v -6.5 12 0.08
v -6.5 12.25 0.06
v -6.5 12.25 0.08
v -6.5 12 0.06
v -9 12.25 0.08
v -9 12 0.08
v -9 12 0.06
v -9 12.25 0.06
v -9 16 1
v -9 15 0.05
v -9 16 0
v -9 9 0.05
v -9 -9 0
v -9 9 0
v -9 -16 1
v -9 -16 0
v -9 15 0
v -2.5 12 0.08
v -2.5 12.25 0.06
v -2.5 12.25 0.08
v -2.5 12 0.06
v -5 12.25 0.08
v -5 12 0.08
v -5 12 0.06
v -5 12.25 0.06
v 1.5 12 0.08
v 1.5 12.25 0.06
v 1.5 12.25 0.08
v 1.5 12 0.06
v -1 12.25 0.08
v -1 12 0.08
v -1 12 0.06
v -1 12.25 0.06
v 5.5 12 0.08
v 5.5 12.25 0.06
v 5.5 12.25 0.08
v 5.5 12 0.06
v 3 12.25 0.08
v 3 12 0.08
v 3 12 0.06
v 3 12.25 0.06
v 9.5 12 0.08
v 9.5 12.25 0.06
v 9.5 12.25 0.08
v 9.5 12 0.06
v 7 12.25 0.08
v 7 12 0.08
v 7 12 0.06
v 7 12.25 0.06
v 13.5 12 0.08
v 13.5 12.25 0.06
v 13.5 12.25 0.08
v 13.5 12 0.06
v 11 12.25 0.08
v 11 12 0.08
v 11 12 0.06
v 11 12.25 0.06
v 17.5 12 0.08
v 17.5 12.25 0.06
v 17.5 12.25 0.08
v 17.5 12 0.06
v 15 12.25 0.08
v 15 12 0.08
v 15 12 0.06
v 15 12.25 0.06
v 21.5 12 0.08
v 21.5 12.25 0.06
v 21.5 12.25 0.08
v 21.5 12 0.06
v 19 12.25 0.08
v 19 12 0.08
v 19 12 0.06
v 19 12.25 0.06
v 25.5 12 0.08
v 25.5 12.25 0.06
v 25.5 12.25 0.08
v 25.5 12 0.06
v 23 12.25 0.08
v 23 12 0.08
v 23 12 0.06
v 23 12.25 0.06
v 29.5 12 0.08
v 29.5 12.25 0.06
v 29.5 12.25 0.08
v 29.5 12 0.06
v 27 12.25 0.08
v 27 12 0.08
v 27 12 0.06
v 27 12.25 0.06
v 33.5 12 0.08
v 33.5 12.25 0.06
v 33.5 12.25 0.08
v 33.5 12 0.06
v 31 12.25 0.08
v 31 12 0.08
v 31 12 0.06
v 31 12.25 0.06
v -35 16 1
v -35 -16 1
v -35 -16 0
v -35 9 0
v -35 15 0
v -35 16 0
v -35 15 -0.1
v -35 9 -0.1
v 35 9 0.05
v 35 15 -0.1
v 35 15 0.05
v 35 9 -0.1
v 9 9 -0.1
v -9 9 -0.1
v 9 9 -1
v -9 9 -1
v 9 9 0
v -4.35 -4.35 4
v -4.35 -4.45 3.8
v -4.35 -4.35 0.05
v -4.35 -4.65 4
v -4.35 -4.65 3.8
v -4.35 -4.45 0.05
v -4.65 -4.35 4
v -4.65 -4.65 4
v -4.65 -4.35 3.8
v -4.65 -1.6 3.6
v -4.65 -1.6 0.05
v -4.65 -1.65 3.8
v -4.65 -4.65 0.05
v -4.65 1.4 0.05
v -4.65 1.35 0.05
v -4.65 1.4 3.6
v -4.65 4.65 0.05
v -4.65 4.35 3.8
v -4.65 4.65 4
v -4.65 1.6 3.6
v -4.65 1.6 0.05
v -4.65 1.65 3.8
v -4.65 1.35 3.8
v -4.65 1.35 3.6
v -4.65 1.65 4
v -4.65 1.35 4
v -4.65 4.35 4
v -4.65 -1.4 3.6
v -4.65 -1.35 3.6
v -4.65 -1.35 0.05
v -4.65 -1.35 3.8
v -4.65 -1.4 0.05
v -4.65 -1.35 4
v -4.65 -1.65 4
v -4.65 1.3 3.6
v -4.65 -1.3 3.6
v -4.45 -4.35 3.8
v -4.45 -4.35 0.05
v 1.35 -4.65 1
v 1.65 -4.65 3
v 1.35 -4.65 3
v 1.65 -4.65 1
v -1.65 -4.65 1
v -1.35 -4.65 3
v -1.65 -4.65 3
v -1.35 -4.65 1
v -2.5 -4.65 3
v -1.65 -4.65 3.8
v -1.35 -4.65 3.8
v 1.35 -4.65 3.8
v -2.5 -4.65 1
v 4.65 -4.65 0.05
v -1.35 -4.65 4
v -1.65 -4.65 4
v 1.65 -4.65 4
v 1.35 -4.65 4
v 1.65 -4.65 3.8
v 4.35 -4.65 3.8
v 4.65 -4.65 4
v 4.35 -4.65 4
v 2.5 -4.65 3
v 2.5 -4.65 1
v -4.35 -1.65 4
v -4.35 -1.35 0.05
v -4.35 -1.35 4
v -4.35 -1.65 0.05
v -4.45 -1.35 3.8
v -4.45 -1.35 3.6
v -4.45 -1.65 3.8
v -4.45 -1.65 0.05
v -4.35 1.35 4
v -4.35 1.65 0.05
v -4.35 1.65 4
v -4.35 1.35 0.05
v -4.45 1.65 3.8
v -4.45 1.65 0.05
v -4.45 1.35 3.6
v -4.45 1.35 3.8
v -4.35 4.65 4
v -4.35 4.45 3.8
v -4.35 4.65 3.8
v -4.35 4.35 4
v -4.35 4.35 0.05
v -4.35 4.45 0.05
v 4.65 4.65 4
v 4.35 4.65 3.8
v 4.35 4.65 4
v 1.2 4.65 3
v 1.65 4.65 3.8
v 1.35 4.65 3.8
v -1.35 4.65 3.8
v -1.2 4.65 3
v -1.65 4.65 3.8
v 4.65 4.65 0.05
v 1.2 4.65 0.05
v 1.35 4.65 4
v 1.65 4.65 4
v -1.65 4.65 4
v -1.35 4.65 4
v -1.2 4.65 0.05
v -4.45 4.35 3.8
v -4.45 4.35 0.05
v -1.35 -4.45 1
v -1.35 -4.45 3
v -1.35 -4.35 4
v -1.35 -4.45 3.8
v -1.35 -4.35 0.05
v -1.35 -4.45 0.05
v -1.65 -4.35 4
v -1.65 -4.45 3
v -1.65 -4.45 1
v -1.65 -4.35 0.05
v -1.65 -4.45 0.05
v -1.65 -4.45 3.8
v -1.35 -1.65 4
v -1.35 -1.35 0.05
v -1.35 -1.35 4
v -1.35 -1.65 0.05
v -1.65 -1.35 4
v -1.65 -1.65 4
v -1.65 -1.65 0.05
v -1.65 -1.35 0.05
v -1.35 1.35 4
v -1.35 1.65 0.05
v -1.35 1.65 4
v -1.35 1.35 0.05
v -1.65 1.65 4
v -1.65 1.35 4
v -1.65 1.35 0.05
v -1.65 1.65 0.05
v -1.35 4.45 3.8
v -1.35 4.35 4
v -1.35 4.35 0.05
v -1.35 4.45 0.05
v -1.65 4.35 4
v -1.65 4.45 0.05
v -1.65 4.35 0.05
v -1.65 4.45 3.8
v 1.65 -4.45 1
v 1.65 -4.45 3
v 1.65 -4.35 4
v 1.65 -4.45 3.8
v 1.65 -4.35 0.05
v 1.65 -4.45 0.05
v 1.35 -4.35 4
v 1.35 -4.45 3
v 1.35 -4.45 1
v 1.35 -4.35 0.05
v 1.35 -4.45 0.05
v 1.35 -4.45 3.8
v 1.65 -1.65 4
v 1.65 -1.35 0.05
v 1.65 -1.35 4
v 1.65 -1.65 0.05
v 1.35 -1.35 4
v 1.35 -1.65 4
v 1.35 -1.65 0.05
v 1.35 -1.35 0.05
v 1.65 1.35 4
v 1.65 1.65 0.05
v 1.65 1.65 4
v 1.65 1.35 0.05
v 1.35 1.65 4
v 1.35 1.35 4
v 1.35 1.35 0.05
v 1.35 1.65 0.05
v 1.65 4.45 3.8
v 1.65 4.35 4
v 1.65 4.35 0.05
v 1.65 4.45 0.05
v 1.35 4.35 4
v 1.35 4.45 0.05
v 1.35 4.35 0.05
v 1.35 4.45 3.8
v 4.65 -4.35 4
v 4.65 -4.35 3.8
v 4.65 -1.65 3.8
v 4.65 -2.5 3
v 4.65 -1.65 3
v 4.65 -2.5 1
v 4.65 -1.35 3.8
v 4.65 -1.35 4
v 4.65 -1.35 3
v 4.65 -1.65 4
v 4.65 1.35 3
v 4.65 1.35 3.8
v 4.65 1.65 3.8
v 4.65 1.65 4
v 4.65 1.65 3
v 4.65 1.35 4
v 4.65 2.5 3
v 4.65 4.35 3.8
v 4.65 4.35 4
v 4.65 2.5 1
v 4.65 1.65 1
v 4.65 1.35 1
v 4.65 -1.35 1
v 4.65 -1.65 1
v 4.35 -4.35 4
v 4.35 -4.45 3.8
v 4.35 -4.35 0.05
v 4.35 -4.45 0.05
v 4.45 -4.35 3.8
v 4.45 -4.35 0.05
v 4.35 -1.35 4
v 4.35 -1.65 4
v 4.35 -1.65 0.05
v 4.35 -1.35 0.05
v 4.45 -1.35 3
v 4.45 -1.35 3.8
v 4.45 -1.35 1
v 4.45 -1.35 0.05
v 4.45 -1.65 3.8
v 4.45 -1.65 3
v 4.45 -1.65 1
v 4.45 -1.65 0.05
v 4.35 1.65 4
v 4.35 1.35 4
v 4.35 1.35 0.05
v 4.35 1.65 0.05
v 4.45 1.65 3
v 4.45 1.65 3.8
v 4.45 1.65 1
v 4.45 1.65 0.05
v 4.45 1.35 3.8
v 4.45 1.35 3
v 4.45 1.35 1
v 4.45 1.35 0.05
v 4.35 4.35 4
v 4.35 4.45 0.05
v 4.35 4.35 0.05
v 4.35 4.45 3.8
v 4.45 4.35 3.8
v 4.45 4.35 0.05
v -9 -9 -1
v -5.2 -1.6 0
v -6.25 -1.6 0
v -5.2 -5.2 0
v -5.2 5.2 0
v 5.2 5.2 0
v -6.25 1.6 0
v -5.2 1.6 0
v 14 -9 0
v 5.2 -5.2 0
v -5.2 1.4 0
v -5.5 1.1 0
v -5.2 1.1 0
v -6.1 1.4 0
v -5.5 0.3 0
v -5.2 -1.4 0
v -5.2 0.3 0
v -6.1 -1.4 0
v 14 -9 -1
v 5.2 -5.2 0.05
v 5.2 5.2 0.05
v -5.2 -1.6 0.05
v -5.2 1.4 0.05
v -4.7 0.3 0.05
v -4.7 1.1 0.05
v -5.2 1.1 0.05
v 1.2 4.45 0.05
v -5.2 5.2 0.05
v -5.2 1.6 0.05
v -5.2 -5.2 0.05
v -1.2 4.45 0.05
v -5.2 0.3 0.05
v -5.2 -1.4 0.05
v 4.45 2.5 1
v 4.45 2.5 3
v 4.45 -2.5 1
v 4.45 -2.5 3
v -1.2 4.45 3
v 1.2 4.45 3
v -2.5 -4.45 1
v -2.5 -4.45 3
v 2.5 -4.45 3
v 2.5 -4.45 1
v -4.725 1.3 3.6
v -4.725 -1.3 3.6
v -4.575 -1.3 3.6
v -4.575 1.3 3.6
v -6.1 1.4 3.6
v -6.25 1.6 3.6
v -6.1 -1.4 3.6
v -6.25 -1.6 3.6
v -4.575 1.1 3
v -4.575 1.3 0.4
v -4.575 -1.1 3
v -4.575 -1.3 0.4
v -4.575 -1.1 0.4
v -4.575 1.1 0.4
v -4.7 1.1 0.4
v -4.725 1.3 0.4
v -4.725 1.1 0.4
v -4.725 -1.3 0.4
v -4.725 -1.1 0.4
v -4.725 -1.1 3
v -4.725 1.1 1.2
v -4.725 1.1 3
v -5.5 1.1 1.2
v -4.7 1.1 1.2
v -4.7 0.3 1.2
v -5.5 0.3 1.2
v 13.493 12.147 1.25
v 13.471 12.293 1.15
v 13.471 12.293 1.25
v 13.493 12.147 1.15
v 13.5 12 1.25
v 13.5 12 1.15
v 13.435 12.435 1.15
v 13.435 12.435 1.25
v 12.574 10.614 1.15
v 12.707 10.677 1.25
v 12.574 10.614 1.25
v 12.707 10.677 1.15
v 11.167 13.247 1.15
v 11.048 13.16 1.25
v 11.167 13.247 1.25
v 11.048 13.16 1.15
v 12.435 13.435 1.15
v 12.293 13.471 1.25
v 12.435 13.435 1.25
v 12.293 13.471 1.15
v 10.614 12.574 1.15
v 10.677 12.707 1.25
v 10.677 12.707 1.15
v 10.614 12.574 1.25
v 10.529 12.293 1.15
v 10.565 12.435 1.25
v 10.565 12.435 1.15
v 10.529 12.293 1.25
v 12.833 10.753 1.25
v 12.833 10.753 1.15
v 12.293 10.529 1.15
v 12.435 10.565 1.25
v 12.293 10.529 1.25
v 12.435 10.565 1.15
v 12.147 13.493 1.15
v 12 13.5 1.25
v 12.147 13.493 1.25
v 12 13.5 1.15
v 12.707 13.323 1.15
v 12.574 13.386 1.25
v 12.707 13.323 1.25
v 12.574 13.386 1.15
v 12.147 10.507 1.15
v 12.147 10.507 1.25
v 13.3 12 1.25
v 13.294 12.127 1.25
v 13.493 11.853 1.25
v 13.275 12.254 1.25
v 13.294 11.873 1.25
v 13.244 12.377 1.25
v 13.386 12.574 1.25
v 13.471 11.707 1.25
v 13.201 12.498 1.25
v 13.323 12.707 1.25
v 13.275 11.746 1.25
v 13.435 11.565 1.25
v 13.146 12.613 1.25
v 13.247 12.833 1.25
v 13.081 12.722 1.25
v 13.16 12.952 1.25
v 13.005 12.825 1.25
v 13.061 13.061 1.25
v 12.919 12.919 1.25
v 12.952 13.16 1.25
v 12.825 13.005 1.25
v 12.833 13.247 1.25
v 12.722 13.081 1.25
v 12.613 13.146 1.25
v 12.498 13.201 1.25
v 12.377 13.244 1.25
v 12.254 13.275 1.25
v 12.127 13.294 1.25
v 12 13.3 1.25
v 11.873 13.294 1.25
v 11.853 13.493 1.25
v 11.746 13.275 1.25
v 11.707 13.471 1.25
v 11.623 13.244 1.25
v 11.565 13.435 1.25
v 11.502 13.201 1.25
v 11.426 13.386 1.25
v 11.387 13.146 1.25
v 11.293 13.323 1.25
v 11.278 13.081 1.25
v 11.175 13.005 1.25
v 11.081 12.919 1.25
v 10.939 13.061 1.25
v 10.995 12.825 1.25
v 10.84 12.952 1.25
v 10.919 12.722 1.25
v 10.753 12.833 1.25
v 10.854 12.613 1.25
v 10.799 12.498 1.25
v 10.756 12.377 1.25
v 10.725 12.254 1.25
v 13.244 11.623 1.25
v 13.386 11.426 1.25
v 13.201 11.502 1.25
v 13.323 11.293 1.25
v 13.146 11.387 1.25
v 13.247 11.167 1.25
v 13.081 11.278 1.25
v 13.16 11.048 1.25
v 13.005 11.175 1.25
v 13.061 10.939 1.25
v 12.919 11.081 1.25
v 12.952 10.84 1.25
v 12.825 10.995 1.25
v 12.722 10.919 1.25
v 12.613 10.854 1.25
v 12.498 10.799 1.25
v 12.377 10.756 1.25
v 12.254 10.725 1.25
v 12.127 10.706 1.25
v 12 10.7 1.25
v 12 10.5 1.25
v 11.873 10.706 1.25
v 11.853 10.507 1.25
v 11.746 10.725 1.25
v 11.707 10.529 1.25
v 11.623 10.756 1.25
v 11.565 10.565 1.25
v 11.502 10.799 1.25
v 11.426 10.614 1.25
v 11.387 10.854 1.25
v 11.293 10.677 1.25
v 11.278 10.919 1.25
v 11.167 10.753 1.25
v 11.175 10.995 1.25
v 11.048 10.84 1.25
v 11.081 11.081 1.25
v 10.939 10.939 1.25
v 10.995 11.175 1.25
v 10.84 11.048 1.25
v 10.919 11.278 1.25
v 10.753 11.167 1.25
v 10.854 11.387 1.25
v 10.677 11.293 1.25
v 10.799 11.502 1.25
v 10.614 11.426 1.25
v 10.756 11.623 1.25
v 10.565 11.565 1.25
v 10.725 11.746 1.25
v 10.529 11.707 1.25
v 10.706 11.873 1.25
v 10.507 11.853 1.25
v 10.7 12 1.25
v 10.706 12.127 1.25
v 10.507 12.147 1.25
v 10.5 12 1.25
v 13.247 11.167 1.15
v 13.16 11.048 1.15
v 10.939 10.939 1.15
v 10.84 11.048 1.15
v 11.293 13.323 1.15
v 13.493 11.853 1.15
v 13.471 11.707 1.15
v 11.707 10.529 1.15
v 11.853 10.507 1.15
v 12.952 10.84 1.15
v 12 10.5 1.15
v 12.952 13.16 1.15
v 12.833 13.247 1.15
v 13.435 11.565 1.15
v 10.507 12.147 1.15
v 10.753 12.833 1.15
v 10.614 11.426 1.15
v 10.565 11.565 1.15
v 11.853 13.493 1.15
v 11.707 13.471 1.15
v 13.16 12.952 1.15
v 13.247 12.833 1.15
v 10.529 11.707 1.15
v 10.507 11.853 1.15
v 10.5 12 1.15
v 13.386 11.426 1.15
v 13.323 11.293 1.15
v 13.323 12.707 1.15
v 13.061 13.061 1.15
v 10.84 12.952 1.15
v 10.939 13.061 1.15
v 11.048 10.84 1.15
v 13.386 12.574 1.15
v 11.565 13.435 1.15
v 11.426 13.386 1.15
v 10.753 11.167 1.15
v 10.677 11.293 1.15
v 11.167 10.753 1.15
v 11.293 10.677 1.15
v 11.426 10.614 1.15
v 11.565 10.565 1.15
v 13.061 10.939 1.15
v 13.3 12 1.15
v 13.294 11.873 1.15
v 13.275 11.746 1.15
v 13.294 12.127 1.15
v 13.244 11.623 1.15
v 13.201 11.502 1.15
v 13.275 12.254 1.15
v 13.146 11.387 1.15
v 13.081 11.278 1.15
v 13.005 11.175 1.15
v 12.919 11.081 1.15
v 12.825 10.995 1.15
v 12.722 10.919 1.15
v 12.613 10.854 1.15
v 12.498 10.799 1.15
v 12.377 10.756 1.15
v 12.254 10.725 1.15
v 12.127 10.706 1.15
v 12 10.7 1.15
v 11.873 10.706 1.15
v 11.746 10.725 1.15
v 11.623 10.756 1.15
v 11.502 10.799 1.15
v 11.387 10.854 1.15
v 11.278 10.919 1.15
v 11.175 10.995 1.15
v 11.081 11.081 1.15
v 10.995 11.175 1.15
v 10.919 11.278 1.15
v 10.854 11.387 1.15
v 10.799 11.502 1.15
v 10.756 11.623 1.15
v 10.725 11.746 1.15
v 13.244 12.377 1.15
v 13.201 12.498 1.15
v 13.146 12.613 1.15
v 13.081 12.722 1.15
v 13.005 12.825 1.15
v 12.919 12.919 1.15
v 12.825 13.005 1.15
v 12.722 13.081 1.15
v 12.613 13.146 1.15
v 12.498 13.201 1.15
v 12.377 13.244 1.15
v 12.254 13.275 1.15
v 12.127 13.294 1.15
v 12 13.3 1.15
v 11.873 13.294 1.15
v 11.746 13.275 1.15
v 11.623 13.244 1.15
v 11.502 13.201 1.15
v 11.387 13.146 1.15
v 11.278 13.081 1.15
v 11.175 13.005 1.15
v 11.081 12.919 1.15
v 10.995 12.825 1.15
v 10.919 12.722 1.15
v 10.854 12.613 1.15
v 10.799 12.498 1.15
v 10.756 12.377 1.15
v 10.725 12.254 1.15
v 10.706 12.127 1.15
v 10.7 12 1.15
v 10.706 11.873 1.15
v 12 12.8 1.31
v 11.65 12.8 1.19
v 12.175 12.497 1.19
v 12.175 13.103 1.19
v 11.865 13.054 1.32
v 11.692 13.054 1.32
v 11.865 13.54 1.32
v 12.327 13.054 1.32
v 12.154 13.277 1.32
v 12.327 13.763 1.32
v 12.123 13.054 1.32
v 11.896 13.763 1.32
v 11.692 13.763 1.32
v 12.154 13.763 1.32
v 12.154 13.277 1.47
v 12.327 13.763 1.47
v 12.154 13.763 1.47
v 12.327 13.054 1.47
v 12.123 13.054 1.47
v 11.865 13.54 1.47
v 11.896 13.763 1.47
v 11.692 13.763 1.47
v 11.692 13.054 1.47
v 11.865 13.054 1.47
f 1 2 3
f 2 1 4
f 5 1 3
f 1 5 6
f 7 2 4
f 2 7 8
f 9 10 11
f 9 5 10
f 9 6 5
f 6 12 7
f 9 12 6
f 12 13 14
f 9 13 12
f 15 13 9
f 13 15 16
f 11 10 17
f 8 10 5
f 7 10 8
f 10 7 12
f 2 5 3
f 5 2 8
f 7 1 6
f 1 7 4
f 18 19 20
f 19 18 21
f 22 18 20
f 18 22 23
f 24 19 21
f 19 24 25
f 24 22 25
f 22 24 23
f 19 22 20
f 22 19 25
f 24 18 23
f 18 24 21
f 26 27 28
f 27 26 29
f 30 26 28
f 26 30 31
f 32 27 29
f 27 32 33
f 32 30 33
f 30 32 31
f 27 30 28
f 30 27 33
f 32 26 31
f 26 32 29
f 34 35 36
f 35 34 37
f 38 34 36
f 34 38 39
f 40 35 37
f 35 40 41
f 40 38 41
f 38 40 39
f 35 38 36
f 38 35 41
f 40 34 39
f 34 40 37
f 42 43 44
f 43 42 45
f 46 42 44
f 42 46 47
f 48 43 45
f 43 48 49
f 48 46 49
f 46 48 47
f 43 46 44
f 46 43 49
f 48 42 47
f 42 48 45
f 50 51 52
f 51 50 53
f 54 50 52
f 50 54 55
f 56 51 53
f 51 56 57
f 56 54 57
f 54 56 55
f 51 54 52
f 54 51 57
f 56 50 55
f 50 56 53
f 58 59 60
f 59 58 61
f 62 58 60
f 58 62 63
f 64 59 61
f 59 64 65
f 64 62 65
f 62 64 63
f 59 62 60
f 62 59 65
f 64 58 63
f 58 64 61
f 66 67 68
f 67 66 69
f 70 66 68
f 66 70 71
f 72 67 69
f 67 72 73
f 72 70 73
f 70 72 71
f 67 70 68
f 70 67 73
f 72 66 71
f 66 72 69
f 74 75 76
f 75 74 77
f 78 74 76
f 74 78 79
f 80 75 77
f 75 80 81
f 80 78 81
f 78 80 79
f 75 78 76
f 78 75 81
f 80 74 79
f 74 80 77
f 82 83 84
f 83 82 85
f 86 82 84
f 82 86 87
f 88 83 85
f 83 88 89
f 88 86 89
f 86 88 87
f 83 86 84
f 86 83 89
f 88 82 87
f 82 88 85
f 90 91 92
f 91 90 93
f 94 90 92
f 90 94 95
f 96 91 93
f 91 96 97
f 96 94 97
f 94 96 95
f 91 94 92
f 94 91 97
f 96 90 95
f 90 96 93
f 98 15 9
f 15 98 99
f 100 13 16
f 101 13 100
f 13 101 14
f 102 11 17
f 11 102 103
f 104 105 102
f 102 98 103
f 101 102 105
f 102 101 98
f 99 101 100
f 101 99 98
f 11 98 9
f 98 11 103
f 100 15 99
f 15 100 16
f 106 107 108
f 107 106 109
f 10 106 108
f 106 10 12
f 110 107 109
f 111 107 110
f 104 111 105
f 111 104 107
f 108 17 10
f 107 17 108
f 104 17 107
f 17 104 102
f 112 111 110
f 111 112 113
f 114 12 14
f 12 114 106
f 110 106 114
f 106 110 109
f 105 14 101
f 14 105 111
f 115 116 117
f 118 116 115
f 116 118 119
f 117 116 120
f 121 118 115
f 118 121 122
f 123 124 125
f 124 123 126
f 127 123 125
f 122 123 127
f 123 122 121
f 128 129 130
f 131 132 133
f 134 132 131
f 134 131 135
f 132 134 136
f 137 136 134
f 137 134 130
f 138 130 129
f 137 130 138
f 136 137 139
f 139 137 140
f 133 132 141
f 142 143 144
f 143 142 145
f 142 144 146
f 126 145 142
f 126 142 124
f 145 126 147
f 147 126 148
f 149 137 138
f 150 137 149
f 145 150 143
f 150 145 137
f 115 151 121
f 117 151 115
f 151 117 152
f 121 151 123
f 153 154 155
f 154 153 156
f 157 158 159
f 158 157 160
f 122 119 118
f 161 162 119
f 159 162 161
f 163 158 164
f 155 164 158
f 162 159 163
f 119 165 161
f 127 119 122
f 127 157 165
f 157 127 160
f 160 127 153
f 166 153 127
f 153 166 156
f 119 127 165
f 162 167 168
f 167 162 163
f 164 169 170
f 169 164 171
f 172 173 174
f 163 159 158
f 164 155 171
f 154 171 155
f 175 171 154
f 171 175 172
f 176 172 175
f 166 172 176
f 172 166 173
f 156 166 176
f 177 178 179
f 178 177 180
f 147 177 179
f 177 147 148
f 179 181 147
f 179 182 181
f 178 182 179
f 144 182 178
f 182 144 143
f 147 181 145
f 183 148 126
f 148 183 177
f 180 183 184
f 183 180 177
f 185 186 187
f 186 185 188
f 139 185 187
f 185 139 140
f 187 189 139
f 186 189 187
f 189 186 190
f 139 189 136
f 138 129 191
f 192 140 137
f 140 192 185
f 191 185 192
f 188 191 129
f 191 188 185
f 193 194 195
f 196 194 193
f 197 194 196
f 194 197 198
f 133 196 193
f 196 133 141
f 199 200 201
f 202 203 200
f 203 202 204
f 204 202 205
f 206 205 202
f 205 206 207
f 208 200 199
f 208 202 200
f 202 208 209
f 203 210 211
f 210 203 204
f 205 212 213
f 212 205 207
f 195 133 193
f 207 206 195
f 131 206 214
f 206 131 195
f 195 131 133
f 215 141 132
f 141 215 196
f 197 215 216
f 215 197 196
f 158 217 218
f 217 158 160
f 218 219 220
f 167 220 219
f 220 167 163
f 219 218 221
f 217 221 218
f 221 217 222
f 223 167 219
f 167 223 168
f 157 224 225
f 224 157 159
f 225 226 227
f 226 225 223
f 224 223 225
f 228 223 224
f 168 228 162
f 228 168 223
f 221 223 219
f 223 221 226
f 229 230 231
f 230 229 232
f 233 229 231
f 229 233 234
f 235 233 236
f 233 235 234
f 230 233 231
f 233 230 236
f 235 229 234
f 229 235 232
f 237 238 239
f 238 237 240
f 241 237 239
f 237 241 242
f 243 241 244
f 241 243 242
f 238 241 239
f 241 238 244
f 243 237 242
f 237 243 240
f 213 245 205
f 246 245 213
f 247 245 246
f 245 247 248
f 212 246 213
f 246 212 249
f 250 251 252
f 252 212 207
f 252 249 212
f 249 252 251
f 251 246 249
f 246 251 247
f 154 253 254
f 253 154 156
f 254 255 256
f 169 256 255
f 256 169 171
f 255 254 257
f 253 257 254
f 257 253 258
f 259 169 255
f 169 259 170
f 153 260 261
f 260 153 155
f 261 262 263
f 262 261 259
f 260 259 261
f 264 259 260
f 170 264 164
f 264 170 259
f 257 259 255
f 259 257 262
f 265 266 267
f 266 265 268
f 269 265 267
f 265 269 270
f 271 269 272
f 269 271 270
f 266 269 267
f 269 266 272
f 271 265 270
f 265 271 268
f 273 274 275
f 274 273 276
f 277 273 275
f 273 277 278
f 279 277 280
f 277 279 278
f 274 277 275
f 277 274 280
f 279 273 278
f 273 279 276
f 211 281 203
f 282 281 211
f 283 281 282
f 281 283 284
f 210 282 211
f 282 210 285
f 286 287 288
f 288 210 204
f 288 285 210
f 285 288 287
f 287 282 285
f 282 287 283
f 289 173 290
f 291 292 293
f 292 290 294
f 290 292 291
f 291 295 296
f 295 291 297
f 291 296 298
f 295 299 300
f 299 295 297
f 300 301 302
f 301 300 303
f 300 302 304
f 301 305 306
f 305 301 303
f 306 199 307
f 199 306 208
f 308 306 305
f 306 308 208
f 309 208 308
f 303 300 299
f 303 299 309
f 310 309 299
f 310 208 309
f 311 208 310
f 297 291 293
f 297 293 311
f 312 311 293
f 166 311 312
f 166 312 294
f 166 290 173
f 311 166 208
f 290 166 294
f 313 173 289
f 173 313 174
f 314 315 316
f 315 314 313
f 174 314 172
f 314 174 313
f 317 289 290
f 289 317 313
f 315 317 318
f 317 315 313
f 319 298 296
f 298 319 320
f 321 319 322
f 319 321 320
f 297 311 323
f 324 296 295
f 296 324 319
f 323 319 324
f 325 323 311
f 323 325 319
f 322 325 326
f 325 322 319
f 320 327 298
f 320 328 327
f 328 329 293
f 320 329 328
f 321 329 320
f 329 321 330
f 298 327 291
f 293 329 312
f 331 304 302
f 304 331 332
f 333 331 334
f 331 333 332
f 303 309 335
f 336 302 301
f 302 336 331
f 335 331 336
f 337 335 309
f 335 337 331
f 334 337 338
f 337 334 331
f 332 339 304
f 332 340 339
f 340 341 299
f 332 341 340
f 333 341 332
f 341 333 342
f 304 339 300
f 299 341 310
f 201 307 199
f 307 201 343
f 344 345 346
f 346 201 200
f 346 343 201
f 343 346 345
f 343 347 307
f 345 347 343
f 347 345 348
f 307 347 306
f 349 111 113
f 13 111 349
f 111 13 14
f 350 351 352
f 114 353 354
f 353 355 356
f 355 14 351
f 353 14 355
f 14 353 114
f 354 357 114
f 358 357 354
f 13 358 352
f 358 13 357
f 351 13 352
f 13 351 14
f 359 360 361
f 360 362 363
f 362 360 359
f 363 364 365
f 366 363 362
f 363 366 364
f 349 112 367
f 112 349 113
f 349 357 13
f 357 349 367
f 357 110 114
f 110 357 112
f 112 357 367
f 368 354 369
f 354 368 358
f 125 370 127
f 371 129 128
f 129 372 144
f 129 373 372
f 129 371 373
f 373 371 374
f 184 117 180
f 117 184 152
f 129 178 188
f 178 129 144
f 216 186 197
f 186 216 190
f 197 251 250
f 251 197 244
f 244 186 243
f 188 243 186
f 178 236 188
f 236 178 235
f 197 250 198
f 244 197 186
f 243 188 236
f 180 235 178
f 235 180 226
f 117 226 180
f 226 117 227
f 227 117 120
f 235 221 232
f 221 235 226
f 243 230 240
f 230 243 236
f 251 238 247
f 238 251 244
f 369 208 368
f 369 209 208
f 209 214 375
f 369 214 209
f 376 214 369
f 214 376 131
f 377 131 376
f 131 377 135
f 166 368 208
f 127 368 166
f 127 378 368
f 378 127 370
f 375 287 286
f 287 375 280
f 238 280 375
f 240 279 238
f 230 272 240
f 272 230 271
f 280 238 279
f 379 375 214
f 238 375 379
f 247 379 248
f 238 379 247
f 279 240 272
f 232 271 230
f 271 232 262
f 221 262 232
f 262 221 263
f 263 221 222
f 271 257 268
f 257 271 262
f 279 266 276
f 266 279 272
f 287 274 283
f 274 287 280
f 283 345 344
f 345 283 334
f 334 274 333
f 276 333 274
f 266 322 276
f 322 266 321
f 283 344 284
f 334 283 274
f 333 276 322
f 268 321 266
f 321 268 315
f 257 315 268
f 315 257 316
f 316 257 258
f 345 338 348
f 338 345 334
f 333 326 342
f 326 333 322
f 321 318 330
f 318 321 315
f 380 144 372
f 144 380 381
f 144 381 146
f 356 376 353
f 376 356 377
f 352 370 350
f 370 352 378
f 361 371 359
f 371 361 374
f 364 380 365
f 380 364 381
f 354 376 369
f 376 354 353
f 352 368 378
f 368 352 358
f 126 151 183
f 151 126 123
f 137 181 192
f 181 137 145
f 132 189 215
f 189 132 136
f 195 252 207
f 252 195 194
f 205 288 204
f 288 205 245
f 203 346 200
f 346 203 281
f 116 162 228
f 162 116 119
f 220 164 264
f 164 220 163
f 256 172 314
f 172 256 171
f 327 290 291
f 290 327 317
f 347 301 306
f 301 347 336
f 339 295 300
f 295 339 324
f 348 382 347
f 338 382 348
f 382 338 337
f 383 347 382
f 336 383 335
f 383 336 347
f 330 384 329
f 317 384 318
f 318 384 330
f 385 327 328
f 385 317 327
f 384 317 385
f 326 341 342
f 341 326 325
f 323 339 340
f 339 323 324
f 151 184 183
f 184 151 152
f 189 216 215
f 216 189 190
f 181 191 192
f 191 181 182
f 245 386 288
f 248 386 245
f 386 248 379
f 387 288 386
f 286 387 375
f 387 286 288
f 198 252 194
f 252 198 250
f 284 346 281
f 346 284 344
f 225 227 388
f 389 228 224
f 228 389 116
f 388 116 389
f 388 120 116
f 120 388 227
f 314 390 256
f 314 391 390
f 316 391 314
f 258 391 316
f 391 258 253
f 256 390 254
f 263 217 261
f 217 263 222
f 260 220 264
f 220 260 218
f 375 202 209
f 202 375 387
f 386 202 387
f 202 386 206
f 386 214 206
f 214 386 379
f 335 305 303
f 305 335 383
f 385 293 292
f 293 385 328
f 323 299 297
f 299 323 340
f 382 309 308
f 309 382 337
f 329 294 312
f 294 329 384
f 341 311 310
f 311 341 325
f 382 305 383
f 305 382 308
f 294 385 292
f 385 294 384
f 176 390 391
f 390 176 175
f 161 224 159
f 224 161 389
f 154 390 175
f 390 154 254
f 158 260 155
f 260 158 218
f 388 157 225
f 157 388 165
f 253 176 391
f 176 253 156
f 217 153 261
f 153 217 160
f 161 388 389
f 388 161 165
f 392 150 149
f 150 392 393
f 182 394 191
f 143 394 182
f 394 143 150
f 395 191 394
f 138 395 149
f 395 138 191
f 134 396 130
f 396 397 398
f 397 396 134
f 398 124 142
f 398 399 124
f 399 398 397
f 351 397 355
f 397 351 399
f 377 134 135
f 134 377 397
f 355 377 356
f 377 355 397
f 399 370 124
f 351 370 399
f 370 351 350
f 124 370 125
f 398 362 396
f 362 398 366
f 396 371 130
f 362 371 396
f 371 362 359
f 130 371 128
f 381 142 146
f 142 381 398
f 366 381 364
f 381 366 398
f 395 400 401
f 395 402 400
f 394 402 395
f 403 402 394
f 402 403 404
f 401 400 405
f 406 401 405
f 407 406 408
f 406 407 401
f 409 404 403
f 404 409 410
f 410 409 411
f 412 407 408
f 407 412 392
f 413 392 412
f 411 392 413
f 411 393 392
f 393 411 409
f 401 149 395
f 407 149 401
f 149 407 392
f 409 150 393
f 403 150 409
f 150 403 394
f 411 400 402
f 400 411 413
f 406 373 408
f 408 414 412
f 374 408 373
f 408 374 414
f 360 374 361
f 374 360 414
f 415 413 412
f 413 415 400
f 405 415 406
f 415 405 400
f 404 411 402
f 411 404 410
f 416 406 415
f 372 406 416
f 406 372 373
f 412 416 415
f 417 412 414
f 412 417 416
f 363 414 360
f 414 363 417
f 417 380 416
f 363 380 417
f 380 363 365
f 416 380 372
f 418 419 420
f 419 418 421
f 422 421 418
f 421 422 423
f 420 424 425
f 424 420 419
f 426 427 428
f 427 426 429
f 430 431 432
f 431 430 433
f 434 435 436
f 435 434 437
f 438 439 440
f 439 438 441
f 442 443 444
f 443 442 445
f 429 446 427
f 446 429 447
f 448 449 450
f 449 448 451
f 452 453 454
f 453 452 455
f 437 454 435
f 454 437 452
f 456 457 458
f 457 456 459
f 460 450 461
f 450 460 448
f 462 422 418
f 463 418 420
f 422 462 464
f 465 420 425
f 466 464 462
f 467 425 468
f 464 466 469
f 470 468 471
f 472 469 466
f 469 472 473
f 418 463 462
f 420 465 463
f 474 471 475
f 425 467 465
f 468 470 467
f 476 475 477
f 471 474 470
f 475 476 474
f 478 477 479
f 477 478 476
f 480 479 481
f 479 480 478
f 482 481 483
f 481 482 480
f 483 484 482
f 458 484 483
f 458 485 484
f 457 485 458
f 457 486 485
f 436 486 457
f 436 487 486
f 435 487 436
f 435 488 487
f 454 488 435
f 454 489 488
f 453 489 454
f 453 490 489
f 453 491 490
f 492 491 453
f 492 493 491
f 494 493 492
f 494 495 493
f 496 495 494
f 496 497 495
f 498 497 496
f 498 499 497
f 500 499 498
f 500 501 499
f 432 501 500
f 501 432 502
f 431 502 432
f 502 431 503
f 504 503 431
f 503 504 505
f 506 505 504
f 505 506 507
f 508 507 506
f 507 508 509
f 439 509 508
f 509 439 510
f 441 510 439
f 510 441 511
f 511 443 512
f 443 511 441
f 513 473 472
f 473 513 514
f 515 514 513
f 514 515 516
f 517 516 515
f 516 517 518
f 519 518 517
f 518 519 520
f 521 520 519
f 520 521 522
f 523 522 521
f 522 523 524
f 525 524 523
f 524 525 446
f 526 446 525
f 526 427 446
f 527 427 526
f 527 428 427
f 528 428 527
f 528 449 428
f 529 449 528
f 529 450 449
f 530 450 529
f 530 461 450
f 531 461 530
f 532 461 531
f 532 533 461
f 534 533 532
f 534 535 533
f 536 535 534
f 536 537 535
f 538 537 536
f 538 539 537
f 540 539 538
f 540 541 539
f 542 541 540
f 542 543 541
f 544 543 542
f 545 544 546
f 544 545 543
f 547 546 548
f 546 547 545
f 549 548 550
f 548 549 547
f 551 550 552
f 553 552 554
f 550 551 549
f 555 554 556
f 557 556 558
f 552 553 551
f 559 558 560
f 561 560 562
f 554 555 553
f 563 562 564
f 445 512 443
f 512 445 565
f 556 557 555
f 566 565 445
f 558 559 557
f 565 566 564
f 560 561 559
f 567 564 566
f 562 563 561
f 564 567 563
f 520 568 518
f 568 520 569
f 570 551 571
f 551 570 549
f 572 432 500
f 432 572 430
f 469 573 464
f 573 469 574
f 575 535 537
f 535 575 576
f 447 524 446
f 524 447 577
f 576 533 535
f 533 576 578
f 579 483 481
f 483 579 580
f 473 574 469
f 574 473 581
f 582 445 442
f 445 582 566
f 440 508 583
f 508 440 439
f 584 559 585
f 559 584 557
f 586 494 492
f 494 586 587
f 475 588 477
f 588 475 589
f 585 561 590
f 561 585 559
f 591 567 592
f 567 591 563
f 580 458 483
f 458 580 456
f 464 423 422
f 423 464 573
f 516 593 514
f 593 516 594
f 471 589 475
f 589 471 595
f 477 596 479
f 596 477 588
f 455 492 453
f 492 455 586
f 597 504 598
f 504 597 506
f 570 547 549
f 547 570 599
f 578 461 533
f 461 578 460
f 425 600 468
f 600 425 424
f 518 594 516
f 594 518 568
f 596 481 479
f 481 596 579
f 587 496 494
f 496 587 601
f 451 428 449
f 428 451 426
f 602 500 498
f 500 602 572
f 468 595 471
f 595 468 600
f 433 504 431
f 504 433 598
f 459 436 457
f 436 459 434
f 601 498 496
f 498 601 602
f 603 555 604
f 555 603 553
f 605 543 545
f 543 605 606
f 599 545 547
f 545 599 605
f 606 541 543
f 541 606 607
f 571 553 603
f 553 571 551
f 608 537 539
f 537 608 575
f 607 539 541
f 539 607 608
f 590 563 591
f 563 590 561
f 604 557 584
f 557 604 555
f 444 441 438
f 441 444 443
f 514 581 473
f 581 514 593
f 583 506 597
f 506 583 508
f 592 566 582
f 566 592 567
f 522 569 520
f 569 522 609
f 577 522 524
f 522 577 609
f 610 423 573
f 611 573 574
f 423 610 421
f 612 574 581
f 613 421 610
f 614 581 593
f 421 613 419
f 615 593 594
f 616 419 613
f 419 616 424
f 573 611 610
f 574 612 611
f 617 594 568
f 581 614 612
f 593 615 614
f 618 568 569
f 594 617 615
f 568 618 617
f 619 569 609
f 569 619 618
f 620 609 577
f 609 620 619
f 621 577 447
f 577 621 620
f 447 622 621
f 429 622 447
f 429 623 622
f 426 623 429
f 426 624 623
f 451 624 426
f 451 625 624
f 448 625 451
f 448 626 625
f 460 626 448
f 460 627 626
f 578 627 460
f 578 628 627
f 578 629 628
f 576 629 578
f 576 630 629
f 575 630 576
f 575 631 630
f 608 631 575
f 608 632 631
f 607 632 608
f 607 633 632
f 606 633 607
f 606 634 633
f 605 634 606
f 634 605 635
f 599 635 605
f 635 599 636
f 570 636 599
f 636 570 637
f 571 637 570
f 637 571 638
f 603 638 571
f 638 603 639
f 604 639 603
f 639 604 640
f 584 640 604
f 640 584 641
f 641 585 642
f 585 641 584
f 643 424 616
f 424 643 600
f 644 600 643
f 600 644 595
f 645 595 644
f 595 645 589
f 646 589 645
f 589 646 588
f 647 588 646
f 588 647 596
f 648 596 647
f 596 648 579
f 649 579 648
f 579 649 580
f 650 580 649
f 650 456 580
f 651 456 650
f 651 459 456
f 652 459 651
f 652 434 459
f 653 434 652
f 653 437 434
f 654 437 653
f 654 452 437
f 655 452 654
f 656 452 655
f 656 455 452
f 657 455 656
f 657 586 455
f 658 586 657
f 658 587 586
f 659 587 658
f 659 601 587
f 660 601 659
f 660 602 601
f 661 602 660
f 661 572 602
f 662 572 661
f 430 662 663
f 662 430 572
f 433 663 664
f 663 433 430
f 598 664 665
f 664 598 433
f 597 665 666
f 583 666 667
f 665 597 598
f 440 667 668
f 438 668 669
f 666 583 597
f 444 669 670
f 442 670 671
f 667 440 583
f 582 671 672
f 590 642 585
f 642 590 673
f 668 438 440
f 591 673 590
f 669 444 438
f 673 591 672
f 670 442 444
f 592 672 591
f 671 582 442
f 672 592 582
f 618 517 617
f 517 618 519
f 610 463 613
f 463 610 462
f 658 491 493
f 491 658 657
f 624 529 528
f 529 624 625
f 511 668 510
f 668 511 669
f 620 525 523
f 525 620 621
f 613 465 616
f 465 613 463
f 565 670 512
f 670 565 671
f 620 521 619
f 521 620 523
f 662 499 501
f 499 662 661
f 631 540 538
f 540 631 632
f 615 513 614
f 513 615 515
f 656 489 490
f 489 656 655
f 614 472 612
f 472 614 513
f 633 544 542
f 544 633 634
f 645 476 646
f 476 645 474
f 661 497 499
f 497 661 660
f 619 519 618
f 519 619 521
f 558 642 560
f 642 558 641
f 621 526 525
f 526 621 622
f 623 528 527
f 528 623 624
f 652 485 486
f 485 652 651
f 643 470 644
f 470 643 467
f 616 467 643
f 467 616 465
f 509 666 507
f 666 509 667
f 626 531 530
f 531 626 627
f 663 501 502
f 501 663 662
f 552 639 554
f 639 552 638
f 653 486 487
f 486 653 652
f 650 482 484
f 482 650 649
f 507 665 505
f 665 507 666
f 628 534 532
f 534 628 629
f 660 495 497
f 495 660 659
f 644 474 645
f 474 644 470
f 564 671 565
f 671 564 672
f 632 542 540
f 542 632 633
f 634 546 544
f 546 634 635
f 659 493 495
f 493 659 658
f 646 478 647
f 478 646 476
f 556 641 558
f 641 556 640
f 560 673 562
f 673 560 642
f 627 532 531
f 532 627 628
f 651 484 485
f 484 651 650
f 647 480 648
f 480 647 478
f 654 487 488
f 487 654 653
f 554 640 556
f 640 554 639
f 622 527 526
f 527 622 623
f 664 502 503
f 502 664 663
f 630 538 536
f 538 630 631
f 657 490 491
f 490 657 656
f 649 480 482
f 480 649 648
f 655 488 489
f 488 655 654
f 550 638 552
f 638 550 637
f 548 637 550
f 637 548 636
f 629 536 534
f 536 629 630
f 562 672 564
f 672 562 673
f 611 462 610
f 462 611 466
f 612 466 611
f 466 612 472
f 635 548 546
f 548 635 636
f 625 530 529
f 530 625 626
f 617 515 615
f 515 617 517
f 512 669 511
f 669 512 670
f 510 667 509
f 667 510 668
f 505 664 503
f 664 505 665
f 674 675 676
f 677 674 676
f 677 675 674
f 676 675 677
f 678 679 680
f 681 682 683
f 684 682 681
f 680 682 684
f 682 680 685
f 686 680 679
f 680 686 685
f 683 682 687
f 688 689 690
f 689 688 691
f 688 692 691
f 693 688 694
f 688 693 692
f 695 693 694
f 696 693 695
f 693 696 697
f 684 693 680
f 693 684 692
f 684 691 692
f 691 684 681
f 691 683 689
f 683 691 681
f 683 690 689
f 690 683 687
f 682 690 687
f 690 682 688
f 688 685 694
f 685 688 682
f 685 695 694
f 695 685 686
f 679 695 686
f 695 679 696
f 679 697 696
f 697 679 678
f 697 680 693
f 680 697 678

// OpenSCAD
// =============================================================================================================
// MASJID NURUL FALAH SUKATANI — STEP 06: BRICK WALLS & MIHRAB ALCOVE SPEC
// Parametric Architectural CSG Model (OpenSCAD)
//
// STRICT CIVIL MANDATE: NORTH AT TOP (+Y AXIS)
// WALL ENCLOSURE + PROTRUDING MIHRAB ALCOVE ON WEST WALL (FACING QIBLA) + ARCHED WINDOWS
// =============================================================================================================

$fn = 64;

poly_site = [ [-9, -9], [14, -9], [9, 9], [-9, 9] ];
grid_x = [-4.5, -1.5, 1.5, 4.5];
grid_y = [-4.5, -1.5, 1.5, 4.5];

// --------------------------------------------------------------------
// 1. SURROUNDINGS
// --------------------------------------------------------------------
module surroundings() {
    // West Land (+1.00m elevated neighbor terrain)
    color([0.22, 0.42, 0.24]) {
        translate([-22, 0, 0.5]) cube([26, 32, 1.0], center = true);
    }
    color([0.38, 0.32, 0.26]) {
        translate([-9.1, 0, 0.5]) cube([0.2, 28, 1.0], center = true);
    }
    // North Road 6.0m
    color([0.18, 0.20, 0.24]) {
        translate([-35, 9, -0.10]) cube([70, 6.0, 0.15]);
    }
    color([0.92, 0.92, 0.95]) {
        for (x = [-33 : 4 : 31]) {
            translate([x, 12, 0.06]) cube([2.5, 0.25, 0.02]);
        }
    }
}

// --------------------------------------------------------------------
// 2. SITE BASE GROUND & COLUMNS
// --------------------------------------------------------------------
module site_structure() {
    color([0.28, 0.52, 0.30]) {
        translate([0, 0, -1.0]) linear_extrude(height = 1.0) polygon(poly_site);
    }
    color([0.72, 0.75, 0.80]) {
        translate([0, 0, 0.0]) cube([10.4, 10.4, 0.10], center = true);
    }
    // Columns
    color([0.70, 0.74, 0.80]) {
        for (x = grid_x) {
            for (y = grid_y) {
                translate([x, y, 2.0]) cube([0.30, 0.30, 4.0], center = true);
            }
        }
    }
}

// --------------------------------------------------------------------
// 3. BRICK WALLS & MIHRAB ALCOVE (ON WEST SIDE)
// --------------------------------------------------------------------
module brick_walls_and_mihrab() {
    // Exterior Perimeter Walls (Light Warm White/Cream Render)
    color([0.88, 0.88, 0.85]) {
        difference() {
            // Main Wall Enclosure 9.3m x 9.3m x 3.8m
            translate([0, 0, 1.9]) cube([9.3, 9.3, 3.8], center = true);
            translate([0, 0, 1.9]) cube([8.9, 8.9, 4.0], center = true);

            // North Wall Entrance Openings
            translate([0, 4.65, 1.5]) cube([2.4, 0.5, 3.0], center = true);
            // East Wall Window Openings
            translate([4.65, 0, 2.0]) cube([0.5, 5.0, 2.0], center = true);
            // South Wall Window Openings
            translate([0, -4.65, 2.0]) cube([5.0, 0.5, 2.0], center = true);
            // West Wall Opening for Mihrab Niche
            translate([-4.65, 0, 1.8]) cube([0.5, 3.0, 3.6], center = true);
        }
    }

    // Mihrab Alcove Box Protruding to the West (Facing Qibla)
    color([0.85, 0.82, 0.76]) {
        difference() {
            translate([-5.45, 0, 1.8]) cube([1.6, 3.2, 3.6], center = true);
            translate([-5.35, 0, 1.8]) cube([1.5, 2.8, 3.7], center = true);
        }
    }

    // Mihrab Decorative Arch Frame & Minbar (Rich Islamic Gold/Teal Accent)
    color([0.15, 0.65, 0.60]) {
        translate([-4.65, 0, 2.0]) {
            difference() {
                cube([0.15, 2.6, 3.2], center = true);
                translate([0, 0, -0.3]) cube([0.20, 2.2, 2.6], center = true);
            }
        }
    }
    // Minbar Wooden Platform
    color([0.65, 0.42, 0.22]) {
        translate([-5.1, 0.7, 0.6]) cube([0.8, 0.8, 1.2], center = true);
    }
}

// --------------------------------------------------------------------
// 4. 3D COMPASS ROSE (North Pointer strictly at +Y)
// --------------------------------------------------------------------
module compass_rose_3d() {
    translate([12, 12, 1.2]) {
        color([0.0, 0.75, 0.95])
            difference() {
                cylinder(h = 0.10, r = 1.5, center = true);
                cylinder(h = 0.12, r = 1.3, center = true);
            }
        color([0.95, 0.2, 0.2]) {
            translate([0, 0.8, 0.05])
                rotate([0, 0, 180])
                    cylinder(h = 0.12, r1 = 0.35, r2 = 0.0, $fn = 3, center = true);
        }
        color([0.9, 0.9, 0.9]) {
            translate([0, 1.4, 0.12])
                linear_extrude(height = 0.15)
                    text("N", size = 0.7, font = "Liberation Sans:style=Bold", halign = "center", valign = "center");
        }
    }
}

// --------------------------------------------------------------------
// 5. MASTER STEP 06 ASSEMBLY
// --------------------------------------------------------------------
module step_06_walls_master() {
    surroundings();
    site_structure();
    brick_walls_and_mihrab();
    compass_rose_3d();
}

step_06_walls_master();
